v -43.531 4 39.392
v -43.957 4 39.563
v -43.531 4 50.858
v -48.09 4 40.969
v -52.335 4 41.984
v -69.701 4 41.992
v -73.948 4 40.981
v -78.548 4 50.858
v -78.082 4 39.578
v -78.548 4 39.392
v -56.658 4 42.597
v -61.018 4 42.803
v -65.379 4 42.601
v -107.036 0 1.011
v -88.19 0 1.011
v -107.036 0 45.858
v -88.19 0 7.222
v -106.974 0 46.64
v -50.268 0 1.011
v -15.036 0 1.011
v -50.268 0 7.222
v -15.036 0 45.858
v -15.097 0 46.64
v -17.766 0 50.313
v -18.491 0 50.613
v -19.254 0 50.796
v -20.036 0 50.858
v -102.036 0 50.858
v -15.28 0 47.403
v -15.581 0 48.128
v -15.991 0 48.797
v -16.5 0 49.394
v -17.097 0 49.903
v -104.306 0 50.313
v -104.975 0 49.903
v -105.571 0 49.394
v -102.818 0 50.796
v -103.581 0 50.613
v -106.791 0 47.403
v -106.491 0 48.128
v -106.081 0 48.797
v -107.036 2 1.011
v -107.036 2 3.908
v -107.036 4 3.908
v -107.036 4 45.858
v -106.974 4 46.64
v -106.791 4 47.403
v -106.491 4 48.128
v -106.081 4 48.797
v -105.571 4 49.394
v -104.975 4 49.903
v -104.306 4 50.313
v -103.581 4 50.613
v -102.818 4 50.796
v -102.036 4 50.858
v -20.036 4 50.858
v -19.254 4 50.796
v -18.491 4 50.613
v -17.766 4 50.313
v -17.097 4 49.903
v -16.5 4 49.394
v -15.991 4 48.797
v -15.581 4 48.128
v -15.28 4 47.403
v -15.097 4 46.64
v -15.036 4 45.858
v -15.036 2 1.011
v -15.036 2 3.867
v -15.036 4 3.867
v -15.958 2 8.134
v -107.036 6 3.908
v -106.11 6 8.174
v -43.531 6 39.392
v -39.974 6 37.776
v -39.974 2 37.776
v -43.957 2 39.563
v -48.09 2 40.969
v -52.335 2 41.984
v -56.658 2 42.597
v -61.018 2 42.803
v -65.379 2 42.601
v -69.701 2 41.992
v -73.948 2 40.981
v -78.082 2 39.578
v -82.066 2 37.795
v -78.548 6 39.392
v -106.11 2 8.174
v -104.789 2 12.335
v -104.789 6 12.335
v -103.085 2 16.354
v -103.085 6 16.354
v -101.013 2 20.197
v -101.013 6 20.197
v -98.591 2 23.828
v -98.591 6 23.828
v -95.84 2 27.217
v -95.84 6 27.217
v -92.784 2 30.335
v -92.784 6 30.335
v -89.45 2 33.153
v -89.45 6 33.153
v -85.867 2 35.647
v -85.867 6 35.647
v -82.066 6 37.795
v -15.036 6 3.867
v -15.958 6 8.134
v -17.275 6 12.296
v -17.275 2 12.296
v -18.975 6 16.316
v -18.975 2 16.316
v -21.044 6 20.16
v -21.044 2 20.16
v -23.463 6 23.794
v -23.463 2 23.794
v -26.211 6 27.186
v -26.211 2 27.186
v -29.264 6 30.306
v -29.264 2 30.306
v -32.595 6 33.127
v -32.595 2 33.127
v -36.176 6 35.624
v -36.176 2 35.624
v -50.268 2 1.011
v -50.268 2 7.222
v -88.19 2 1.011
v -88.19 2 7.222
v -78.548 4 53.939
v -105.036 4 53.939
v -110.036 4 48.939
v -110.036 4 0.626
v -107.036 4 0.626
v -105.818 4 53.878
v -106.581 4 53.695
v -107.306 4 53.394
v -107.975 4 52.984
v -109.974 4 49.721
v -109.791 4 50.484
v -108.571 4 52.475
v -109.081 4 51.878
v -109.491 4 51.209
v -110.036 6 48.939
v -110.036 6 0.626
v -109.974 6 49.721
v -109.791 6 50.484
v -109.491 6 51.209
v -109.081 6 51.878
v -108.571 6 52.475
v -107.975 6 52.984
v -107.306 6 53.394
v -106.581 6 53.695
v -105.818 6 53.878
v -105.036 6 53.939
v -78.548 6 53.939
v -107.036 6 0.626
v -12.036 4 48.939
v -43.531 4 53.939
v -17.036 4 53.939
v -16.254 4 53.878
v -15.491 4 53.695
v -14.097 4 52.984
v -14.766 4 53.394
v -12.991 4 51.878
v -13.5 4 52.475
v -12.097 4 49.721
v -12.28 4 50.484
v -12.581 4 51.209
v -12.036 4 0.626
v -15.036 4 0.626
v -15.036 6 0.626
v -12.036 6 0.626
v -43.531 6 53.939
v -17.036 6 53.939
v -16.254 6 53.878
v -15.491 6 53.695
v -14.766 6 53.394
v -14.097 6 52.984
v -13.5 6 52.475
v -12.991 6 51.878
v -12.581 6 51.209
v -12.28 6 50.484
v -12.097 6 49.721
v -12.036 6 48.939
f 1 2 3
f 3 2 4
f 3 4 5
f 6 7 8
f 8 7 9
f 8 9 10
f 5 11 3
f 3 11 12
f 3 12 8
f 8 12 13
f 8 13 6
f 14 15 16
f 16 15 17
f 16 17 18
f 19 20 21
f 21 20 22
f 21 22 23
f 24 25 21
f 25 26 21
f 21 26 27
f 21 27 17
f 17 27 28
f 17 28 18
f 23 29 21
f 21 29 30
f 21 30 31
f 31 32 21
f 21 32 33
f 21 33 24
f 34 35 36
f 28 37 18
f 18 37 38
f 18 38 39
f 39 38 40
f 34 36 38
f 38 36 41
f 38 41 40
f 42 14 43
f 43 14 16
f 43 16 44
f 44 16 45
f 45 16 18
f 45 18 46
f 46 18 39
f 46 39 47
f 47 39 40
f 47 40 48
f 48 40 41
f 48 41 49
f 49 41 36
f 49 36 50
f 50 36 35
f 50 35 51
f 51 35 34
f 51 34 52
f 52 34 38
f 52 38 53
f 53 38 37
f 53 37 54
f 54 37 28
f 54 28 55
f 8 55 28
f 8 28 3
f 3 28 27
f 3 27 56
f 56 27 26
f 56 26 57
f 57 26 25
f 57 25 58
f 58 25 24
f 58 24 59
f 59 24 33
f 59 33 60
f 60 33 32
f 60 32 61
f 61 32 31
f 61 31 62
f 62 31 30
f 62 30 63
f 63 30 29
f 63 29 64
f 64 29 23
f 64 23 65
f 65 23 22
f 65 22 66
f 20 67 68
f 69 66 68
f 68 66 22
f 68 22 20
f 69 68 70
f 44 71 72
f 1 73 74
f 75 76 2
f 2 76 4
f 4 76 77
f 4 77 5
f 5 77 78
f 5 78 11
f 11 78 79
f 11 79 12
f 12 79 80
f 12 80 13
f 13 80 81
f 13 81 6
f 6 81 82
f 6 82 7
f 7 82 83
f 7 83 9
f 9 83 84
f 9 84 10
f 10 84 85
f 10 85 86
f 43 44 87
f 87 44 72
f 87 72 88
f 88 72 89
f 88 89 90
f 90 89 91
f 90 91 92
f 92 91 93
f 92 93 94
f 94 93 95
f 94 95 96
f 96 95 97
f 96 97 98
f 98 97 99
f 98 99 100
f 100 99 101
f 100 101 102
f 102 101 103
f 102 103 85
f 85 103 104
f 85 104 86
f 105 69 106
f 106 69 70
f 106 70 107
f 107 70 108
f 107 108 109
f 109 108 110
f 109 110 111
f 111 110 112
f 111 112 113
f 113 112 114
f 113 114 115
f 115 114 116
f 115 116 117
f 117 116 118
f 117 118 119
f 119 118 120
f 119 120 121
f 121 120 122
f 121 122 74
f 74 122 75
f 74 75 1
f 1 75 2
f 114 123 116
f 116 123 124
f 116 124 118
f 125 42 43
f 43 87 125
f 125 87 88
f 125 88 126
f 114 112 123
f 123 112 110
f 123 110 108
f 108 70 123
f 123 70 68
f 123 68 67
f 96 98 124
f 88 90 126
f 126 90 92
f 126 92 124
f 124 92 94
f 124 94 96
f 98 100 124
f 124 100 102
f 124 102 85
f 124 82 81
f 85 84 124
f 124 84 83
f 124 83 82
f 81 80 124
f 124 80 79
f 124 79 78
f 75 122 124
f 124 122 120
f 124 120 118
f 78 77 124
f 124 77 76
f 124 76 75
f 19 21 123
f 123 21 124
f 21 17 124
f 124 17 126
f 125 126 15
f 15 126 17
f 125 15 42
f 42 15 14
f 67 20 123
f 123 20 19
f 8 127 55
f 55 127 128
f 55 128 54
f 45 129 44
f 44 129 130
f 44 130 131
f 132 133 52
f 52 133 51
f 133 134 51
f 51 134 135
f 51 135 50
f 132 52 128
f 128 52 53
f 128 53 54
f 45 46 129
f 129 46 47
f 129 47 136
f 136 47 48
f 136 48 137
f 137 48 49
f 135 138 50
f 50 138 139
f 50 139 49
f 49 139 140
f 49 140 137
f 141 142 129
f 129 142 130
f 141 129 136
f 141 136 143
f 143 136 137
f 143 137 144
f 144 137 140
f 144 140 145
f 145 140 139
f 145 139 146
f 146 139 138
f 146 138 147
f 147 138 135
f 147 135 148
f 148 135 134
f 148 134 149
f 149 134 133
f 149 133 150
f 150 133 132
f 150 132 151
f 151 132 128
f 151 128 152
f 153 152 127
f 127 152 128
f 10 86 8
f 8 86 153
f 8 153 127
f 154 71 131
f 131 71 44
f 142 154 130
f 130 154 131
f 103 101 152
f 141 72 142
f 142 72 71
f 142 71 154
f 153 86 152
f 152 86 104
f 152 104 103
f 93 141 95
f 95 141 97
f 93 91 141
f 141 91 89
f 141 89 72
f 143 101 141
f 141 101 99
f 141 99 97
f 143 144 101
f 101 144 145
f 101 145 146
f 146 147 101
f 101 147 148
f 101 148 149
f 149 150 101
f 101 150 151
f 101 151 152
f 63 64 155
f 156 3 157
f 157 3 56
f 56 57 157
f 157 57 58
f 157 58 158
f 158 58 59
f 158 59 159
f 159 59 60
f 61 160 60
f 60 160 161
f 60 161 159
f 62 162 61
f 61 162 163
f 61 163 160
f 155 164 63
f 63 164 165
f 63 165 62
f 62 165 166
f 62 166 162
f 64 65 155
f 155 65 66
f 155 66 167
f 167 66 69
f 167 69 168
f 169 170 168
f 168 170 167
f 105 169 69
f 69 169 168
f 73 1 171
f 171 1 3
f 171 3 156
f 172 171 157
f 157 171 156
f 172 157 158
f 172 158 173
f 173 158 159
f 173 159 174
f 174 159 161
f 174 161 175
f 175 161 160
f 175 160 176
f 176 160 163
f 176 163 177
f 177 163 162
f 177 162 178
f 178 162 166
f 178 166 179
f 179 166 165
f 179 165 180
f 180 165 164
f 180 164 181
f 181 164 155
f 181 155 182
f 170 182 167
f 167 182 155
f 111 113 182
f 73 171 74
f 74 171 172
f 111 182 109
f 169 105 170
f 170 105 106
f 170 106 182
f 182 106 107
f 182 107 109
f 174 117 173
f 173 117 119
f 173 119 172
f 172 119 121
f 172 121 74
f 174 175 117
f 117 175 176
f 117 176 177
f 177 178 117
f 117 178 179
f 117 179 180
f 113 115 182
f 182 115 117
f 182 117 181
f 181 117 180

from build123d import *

# Parameters (mm, degrees)
BOSS_EXTRUDE2_DEPTH = 4
CUT_EXTRUDE3_DEPTH  = 4
SKETCH6_R           = 46.644893749
CUT_EXTRUDE4_DEPTH  = 2
SKETCH7_W           = 37.921763703
SKETCH7_H           = 21.966033547
CUT_EXTRUDE5_DEPTH  = 2
CUT_EXTRUDE7_DEPTH  = 10
BOSS_EXTRUDE3_DEPTH = 2


with BuildPart() as part:
    # Sketch4 → Boss-Extrude2 (new body)
    with BuildSketch(Plane(origin=(0, 0, 0), x_dir=(1, 0, 0), z_dir=(0, 1, 0))):
        with BuildLine():
            Line((-107.035735829, 49.14195745), (-15.035735829, 49.14195745))
            Line((-15.035735829, 49.14195745), (-15.035735829, -45.85804255))
            ThreePointArc((-15.035735829, -45.85804255), (-16.500201924, -49.393576456), (-20.035735829, -50.85804255))
            Line((-20.035735829, -50.85804255), (-102.035735829, -50.85804255))
            ThreePointArc((-102.035735829, -50.85804255), (-105.571269735, -49.393576456), (-107.035735829, -45.85804255))
            Line((-107.035735829, -45.85804255), (-107.035735829, 49.14195745))
        make_face()
    extrude(amount=BOSS_EXTRUDE2_DEPTH)

    # Sketch5 → Cut-Extrude3 (cut)
    with BuildSketch(Plane(origin=(0, 4, 0), x_dir=(1, 0, 0), z_dir=(0, 1, 0))):
        with BuildLine():
            Line((-122.184107688, 54.312207558), (-0.881081782, 54.312207558))
            Line((-0.881081782, 54.312207558), (-0.881081782, -1.763818638))
            Line((-0.881081782, -1.763818638), (-15.035735829, -1.763818638))
            ThreePointArc((-15.035735829, -1.763818638), (-61.035735829, 48.088703252), (-107.035735829, -1.763818638))
            Line((-107.035735829, -1.763818638), (-116.20594022, -1.763818638))
            Line((-116.20594022, -1.763818638), (-122.184107688, 54.312207558))
        make_face()
    extrude(amount=-CUT_EXTRUDE3_DEPTH, mode=Mode.SUBTRACT)

    # Sketch6 → Cut-Extrude4 (cut)
    with BuildSketch(Plane(origin=(0, 4, 0), x_dir=(1, 0, 0), z_dir=(0, 1, 0))):
        with Locations((-61.039241489, 3.84195745)):
            Circle(SKETCH6_R)
    extrude(amount=-CUT_EXTRUDE4_DEPTH, mode=Mode.SUBTRACT)

    # Sketch7 → Cut-Extrude5 (cut)
    with BuildSketch(Plane(origin=(0, 2, 0), x_dir=(1, 0, 0), z_dir=(0, 1, 0))):
        with Locations((-69.228954178, 3.760987583)):
            Rectangle(SKETCH7_W, SKETCH7_H)
    extrude(amount=-CUT_EXTRUDE5_DEPTH, mode=Mode.SUBTRACT)

    # Sketch8 → Cut-Extrude7 (cut)
    with BuildSketch(Plane(origin=(0, 2, 0), x_dir=(1, 0, 0), z_dir=(0, 1, 0))):
        Polygon((-107.035735829, 51.823370687), (-12.035735829, 51.823370687), (-15.035735829, -1.011363006), (-107.035735829, -1.011363006), align=None)
    extrude(amount=-CUT_EXTRUDE7_DEPTH, mode=Mode.SUBTRACT)

    # Sketch10 → Boss-Extrude3 (add)
    with BuildSketch(Plane(origin=(0, 4, 0), x_dir=(1, 0, 0), z_dir=(0, 1, 0))):
        with BuildLine():
            Line((-110.035735829, -0.626443871), (-107.035735829, -0.626443871))
            Line((-107.035735829, -0.626443871), (-107.035735829, -3.908437462))
            ThreePointArc((-107.035735829, -3.908437462), (-97.412251623, -25.359930275), (-78.547707812, -39.392284997))
            Line((-78.547707812, -39.392284997), (-78.547707812, -53.939312876))
            Line((-78.547707812, -53.939312876), (-105.035735829, -53.939312876))
            ThreePointArc((-105.035735829, -53.939312876), (-108.571269735, -52.474846782), (-110.035735829, -48.939312876))
            Line((-110.035735829, -48.939312876), (-110.035735829, -0.626443871))
        make_face()
        with BuildLine():
            Line((-12.035735829, -0.626443871), (-12.035735829, -48.939312876))
            ThreePointArc((-12.035735829, -48.939312876), (-13.500201924, -52.474846782), (-17.035735829, -53.939312876))
            Line((-17.035735829, -53.939312876), (-43.530775166, -53.939312876))
            Line((-43.530775166, -53.939312876), (-43.530775166, -39.392284997))
            ThreePointArc((-43.530775166, -39.392284997), (-24.652990845, -25.343430622), (-15.035735829, -3.86671169))
            Line((-15.035735829, -3.86671169), (-15.035735829, -0.626443871))
            Line((-15.035735829, -0.626443871), (-12.035735829, -0.626443871))
        make_face()
    extrude(amount=BOSS_EXTRUDE3_DEPTH)


solid = part.part
